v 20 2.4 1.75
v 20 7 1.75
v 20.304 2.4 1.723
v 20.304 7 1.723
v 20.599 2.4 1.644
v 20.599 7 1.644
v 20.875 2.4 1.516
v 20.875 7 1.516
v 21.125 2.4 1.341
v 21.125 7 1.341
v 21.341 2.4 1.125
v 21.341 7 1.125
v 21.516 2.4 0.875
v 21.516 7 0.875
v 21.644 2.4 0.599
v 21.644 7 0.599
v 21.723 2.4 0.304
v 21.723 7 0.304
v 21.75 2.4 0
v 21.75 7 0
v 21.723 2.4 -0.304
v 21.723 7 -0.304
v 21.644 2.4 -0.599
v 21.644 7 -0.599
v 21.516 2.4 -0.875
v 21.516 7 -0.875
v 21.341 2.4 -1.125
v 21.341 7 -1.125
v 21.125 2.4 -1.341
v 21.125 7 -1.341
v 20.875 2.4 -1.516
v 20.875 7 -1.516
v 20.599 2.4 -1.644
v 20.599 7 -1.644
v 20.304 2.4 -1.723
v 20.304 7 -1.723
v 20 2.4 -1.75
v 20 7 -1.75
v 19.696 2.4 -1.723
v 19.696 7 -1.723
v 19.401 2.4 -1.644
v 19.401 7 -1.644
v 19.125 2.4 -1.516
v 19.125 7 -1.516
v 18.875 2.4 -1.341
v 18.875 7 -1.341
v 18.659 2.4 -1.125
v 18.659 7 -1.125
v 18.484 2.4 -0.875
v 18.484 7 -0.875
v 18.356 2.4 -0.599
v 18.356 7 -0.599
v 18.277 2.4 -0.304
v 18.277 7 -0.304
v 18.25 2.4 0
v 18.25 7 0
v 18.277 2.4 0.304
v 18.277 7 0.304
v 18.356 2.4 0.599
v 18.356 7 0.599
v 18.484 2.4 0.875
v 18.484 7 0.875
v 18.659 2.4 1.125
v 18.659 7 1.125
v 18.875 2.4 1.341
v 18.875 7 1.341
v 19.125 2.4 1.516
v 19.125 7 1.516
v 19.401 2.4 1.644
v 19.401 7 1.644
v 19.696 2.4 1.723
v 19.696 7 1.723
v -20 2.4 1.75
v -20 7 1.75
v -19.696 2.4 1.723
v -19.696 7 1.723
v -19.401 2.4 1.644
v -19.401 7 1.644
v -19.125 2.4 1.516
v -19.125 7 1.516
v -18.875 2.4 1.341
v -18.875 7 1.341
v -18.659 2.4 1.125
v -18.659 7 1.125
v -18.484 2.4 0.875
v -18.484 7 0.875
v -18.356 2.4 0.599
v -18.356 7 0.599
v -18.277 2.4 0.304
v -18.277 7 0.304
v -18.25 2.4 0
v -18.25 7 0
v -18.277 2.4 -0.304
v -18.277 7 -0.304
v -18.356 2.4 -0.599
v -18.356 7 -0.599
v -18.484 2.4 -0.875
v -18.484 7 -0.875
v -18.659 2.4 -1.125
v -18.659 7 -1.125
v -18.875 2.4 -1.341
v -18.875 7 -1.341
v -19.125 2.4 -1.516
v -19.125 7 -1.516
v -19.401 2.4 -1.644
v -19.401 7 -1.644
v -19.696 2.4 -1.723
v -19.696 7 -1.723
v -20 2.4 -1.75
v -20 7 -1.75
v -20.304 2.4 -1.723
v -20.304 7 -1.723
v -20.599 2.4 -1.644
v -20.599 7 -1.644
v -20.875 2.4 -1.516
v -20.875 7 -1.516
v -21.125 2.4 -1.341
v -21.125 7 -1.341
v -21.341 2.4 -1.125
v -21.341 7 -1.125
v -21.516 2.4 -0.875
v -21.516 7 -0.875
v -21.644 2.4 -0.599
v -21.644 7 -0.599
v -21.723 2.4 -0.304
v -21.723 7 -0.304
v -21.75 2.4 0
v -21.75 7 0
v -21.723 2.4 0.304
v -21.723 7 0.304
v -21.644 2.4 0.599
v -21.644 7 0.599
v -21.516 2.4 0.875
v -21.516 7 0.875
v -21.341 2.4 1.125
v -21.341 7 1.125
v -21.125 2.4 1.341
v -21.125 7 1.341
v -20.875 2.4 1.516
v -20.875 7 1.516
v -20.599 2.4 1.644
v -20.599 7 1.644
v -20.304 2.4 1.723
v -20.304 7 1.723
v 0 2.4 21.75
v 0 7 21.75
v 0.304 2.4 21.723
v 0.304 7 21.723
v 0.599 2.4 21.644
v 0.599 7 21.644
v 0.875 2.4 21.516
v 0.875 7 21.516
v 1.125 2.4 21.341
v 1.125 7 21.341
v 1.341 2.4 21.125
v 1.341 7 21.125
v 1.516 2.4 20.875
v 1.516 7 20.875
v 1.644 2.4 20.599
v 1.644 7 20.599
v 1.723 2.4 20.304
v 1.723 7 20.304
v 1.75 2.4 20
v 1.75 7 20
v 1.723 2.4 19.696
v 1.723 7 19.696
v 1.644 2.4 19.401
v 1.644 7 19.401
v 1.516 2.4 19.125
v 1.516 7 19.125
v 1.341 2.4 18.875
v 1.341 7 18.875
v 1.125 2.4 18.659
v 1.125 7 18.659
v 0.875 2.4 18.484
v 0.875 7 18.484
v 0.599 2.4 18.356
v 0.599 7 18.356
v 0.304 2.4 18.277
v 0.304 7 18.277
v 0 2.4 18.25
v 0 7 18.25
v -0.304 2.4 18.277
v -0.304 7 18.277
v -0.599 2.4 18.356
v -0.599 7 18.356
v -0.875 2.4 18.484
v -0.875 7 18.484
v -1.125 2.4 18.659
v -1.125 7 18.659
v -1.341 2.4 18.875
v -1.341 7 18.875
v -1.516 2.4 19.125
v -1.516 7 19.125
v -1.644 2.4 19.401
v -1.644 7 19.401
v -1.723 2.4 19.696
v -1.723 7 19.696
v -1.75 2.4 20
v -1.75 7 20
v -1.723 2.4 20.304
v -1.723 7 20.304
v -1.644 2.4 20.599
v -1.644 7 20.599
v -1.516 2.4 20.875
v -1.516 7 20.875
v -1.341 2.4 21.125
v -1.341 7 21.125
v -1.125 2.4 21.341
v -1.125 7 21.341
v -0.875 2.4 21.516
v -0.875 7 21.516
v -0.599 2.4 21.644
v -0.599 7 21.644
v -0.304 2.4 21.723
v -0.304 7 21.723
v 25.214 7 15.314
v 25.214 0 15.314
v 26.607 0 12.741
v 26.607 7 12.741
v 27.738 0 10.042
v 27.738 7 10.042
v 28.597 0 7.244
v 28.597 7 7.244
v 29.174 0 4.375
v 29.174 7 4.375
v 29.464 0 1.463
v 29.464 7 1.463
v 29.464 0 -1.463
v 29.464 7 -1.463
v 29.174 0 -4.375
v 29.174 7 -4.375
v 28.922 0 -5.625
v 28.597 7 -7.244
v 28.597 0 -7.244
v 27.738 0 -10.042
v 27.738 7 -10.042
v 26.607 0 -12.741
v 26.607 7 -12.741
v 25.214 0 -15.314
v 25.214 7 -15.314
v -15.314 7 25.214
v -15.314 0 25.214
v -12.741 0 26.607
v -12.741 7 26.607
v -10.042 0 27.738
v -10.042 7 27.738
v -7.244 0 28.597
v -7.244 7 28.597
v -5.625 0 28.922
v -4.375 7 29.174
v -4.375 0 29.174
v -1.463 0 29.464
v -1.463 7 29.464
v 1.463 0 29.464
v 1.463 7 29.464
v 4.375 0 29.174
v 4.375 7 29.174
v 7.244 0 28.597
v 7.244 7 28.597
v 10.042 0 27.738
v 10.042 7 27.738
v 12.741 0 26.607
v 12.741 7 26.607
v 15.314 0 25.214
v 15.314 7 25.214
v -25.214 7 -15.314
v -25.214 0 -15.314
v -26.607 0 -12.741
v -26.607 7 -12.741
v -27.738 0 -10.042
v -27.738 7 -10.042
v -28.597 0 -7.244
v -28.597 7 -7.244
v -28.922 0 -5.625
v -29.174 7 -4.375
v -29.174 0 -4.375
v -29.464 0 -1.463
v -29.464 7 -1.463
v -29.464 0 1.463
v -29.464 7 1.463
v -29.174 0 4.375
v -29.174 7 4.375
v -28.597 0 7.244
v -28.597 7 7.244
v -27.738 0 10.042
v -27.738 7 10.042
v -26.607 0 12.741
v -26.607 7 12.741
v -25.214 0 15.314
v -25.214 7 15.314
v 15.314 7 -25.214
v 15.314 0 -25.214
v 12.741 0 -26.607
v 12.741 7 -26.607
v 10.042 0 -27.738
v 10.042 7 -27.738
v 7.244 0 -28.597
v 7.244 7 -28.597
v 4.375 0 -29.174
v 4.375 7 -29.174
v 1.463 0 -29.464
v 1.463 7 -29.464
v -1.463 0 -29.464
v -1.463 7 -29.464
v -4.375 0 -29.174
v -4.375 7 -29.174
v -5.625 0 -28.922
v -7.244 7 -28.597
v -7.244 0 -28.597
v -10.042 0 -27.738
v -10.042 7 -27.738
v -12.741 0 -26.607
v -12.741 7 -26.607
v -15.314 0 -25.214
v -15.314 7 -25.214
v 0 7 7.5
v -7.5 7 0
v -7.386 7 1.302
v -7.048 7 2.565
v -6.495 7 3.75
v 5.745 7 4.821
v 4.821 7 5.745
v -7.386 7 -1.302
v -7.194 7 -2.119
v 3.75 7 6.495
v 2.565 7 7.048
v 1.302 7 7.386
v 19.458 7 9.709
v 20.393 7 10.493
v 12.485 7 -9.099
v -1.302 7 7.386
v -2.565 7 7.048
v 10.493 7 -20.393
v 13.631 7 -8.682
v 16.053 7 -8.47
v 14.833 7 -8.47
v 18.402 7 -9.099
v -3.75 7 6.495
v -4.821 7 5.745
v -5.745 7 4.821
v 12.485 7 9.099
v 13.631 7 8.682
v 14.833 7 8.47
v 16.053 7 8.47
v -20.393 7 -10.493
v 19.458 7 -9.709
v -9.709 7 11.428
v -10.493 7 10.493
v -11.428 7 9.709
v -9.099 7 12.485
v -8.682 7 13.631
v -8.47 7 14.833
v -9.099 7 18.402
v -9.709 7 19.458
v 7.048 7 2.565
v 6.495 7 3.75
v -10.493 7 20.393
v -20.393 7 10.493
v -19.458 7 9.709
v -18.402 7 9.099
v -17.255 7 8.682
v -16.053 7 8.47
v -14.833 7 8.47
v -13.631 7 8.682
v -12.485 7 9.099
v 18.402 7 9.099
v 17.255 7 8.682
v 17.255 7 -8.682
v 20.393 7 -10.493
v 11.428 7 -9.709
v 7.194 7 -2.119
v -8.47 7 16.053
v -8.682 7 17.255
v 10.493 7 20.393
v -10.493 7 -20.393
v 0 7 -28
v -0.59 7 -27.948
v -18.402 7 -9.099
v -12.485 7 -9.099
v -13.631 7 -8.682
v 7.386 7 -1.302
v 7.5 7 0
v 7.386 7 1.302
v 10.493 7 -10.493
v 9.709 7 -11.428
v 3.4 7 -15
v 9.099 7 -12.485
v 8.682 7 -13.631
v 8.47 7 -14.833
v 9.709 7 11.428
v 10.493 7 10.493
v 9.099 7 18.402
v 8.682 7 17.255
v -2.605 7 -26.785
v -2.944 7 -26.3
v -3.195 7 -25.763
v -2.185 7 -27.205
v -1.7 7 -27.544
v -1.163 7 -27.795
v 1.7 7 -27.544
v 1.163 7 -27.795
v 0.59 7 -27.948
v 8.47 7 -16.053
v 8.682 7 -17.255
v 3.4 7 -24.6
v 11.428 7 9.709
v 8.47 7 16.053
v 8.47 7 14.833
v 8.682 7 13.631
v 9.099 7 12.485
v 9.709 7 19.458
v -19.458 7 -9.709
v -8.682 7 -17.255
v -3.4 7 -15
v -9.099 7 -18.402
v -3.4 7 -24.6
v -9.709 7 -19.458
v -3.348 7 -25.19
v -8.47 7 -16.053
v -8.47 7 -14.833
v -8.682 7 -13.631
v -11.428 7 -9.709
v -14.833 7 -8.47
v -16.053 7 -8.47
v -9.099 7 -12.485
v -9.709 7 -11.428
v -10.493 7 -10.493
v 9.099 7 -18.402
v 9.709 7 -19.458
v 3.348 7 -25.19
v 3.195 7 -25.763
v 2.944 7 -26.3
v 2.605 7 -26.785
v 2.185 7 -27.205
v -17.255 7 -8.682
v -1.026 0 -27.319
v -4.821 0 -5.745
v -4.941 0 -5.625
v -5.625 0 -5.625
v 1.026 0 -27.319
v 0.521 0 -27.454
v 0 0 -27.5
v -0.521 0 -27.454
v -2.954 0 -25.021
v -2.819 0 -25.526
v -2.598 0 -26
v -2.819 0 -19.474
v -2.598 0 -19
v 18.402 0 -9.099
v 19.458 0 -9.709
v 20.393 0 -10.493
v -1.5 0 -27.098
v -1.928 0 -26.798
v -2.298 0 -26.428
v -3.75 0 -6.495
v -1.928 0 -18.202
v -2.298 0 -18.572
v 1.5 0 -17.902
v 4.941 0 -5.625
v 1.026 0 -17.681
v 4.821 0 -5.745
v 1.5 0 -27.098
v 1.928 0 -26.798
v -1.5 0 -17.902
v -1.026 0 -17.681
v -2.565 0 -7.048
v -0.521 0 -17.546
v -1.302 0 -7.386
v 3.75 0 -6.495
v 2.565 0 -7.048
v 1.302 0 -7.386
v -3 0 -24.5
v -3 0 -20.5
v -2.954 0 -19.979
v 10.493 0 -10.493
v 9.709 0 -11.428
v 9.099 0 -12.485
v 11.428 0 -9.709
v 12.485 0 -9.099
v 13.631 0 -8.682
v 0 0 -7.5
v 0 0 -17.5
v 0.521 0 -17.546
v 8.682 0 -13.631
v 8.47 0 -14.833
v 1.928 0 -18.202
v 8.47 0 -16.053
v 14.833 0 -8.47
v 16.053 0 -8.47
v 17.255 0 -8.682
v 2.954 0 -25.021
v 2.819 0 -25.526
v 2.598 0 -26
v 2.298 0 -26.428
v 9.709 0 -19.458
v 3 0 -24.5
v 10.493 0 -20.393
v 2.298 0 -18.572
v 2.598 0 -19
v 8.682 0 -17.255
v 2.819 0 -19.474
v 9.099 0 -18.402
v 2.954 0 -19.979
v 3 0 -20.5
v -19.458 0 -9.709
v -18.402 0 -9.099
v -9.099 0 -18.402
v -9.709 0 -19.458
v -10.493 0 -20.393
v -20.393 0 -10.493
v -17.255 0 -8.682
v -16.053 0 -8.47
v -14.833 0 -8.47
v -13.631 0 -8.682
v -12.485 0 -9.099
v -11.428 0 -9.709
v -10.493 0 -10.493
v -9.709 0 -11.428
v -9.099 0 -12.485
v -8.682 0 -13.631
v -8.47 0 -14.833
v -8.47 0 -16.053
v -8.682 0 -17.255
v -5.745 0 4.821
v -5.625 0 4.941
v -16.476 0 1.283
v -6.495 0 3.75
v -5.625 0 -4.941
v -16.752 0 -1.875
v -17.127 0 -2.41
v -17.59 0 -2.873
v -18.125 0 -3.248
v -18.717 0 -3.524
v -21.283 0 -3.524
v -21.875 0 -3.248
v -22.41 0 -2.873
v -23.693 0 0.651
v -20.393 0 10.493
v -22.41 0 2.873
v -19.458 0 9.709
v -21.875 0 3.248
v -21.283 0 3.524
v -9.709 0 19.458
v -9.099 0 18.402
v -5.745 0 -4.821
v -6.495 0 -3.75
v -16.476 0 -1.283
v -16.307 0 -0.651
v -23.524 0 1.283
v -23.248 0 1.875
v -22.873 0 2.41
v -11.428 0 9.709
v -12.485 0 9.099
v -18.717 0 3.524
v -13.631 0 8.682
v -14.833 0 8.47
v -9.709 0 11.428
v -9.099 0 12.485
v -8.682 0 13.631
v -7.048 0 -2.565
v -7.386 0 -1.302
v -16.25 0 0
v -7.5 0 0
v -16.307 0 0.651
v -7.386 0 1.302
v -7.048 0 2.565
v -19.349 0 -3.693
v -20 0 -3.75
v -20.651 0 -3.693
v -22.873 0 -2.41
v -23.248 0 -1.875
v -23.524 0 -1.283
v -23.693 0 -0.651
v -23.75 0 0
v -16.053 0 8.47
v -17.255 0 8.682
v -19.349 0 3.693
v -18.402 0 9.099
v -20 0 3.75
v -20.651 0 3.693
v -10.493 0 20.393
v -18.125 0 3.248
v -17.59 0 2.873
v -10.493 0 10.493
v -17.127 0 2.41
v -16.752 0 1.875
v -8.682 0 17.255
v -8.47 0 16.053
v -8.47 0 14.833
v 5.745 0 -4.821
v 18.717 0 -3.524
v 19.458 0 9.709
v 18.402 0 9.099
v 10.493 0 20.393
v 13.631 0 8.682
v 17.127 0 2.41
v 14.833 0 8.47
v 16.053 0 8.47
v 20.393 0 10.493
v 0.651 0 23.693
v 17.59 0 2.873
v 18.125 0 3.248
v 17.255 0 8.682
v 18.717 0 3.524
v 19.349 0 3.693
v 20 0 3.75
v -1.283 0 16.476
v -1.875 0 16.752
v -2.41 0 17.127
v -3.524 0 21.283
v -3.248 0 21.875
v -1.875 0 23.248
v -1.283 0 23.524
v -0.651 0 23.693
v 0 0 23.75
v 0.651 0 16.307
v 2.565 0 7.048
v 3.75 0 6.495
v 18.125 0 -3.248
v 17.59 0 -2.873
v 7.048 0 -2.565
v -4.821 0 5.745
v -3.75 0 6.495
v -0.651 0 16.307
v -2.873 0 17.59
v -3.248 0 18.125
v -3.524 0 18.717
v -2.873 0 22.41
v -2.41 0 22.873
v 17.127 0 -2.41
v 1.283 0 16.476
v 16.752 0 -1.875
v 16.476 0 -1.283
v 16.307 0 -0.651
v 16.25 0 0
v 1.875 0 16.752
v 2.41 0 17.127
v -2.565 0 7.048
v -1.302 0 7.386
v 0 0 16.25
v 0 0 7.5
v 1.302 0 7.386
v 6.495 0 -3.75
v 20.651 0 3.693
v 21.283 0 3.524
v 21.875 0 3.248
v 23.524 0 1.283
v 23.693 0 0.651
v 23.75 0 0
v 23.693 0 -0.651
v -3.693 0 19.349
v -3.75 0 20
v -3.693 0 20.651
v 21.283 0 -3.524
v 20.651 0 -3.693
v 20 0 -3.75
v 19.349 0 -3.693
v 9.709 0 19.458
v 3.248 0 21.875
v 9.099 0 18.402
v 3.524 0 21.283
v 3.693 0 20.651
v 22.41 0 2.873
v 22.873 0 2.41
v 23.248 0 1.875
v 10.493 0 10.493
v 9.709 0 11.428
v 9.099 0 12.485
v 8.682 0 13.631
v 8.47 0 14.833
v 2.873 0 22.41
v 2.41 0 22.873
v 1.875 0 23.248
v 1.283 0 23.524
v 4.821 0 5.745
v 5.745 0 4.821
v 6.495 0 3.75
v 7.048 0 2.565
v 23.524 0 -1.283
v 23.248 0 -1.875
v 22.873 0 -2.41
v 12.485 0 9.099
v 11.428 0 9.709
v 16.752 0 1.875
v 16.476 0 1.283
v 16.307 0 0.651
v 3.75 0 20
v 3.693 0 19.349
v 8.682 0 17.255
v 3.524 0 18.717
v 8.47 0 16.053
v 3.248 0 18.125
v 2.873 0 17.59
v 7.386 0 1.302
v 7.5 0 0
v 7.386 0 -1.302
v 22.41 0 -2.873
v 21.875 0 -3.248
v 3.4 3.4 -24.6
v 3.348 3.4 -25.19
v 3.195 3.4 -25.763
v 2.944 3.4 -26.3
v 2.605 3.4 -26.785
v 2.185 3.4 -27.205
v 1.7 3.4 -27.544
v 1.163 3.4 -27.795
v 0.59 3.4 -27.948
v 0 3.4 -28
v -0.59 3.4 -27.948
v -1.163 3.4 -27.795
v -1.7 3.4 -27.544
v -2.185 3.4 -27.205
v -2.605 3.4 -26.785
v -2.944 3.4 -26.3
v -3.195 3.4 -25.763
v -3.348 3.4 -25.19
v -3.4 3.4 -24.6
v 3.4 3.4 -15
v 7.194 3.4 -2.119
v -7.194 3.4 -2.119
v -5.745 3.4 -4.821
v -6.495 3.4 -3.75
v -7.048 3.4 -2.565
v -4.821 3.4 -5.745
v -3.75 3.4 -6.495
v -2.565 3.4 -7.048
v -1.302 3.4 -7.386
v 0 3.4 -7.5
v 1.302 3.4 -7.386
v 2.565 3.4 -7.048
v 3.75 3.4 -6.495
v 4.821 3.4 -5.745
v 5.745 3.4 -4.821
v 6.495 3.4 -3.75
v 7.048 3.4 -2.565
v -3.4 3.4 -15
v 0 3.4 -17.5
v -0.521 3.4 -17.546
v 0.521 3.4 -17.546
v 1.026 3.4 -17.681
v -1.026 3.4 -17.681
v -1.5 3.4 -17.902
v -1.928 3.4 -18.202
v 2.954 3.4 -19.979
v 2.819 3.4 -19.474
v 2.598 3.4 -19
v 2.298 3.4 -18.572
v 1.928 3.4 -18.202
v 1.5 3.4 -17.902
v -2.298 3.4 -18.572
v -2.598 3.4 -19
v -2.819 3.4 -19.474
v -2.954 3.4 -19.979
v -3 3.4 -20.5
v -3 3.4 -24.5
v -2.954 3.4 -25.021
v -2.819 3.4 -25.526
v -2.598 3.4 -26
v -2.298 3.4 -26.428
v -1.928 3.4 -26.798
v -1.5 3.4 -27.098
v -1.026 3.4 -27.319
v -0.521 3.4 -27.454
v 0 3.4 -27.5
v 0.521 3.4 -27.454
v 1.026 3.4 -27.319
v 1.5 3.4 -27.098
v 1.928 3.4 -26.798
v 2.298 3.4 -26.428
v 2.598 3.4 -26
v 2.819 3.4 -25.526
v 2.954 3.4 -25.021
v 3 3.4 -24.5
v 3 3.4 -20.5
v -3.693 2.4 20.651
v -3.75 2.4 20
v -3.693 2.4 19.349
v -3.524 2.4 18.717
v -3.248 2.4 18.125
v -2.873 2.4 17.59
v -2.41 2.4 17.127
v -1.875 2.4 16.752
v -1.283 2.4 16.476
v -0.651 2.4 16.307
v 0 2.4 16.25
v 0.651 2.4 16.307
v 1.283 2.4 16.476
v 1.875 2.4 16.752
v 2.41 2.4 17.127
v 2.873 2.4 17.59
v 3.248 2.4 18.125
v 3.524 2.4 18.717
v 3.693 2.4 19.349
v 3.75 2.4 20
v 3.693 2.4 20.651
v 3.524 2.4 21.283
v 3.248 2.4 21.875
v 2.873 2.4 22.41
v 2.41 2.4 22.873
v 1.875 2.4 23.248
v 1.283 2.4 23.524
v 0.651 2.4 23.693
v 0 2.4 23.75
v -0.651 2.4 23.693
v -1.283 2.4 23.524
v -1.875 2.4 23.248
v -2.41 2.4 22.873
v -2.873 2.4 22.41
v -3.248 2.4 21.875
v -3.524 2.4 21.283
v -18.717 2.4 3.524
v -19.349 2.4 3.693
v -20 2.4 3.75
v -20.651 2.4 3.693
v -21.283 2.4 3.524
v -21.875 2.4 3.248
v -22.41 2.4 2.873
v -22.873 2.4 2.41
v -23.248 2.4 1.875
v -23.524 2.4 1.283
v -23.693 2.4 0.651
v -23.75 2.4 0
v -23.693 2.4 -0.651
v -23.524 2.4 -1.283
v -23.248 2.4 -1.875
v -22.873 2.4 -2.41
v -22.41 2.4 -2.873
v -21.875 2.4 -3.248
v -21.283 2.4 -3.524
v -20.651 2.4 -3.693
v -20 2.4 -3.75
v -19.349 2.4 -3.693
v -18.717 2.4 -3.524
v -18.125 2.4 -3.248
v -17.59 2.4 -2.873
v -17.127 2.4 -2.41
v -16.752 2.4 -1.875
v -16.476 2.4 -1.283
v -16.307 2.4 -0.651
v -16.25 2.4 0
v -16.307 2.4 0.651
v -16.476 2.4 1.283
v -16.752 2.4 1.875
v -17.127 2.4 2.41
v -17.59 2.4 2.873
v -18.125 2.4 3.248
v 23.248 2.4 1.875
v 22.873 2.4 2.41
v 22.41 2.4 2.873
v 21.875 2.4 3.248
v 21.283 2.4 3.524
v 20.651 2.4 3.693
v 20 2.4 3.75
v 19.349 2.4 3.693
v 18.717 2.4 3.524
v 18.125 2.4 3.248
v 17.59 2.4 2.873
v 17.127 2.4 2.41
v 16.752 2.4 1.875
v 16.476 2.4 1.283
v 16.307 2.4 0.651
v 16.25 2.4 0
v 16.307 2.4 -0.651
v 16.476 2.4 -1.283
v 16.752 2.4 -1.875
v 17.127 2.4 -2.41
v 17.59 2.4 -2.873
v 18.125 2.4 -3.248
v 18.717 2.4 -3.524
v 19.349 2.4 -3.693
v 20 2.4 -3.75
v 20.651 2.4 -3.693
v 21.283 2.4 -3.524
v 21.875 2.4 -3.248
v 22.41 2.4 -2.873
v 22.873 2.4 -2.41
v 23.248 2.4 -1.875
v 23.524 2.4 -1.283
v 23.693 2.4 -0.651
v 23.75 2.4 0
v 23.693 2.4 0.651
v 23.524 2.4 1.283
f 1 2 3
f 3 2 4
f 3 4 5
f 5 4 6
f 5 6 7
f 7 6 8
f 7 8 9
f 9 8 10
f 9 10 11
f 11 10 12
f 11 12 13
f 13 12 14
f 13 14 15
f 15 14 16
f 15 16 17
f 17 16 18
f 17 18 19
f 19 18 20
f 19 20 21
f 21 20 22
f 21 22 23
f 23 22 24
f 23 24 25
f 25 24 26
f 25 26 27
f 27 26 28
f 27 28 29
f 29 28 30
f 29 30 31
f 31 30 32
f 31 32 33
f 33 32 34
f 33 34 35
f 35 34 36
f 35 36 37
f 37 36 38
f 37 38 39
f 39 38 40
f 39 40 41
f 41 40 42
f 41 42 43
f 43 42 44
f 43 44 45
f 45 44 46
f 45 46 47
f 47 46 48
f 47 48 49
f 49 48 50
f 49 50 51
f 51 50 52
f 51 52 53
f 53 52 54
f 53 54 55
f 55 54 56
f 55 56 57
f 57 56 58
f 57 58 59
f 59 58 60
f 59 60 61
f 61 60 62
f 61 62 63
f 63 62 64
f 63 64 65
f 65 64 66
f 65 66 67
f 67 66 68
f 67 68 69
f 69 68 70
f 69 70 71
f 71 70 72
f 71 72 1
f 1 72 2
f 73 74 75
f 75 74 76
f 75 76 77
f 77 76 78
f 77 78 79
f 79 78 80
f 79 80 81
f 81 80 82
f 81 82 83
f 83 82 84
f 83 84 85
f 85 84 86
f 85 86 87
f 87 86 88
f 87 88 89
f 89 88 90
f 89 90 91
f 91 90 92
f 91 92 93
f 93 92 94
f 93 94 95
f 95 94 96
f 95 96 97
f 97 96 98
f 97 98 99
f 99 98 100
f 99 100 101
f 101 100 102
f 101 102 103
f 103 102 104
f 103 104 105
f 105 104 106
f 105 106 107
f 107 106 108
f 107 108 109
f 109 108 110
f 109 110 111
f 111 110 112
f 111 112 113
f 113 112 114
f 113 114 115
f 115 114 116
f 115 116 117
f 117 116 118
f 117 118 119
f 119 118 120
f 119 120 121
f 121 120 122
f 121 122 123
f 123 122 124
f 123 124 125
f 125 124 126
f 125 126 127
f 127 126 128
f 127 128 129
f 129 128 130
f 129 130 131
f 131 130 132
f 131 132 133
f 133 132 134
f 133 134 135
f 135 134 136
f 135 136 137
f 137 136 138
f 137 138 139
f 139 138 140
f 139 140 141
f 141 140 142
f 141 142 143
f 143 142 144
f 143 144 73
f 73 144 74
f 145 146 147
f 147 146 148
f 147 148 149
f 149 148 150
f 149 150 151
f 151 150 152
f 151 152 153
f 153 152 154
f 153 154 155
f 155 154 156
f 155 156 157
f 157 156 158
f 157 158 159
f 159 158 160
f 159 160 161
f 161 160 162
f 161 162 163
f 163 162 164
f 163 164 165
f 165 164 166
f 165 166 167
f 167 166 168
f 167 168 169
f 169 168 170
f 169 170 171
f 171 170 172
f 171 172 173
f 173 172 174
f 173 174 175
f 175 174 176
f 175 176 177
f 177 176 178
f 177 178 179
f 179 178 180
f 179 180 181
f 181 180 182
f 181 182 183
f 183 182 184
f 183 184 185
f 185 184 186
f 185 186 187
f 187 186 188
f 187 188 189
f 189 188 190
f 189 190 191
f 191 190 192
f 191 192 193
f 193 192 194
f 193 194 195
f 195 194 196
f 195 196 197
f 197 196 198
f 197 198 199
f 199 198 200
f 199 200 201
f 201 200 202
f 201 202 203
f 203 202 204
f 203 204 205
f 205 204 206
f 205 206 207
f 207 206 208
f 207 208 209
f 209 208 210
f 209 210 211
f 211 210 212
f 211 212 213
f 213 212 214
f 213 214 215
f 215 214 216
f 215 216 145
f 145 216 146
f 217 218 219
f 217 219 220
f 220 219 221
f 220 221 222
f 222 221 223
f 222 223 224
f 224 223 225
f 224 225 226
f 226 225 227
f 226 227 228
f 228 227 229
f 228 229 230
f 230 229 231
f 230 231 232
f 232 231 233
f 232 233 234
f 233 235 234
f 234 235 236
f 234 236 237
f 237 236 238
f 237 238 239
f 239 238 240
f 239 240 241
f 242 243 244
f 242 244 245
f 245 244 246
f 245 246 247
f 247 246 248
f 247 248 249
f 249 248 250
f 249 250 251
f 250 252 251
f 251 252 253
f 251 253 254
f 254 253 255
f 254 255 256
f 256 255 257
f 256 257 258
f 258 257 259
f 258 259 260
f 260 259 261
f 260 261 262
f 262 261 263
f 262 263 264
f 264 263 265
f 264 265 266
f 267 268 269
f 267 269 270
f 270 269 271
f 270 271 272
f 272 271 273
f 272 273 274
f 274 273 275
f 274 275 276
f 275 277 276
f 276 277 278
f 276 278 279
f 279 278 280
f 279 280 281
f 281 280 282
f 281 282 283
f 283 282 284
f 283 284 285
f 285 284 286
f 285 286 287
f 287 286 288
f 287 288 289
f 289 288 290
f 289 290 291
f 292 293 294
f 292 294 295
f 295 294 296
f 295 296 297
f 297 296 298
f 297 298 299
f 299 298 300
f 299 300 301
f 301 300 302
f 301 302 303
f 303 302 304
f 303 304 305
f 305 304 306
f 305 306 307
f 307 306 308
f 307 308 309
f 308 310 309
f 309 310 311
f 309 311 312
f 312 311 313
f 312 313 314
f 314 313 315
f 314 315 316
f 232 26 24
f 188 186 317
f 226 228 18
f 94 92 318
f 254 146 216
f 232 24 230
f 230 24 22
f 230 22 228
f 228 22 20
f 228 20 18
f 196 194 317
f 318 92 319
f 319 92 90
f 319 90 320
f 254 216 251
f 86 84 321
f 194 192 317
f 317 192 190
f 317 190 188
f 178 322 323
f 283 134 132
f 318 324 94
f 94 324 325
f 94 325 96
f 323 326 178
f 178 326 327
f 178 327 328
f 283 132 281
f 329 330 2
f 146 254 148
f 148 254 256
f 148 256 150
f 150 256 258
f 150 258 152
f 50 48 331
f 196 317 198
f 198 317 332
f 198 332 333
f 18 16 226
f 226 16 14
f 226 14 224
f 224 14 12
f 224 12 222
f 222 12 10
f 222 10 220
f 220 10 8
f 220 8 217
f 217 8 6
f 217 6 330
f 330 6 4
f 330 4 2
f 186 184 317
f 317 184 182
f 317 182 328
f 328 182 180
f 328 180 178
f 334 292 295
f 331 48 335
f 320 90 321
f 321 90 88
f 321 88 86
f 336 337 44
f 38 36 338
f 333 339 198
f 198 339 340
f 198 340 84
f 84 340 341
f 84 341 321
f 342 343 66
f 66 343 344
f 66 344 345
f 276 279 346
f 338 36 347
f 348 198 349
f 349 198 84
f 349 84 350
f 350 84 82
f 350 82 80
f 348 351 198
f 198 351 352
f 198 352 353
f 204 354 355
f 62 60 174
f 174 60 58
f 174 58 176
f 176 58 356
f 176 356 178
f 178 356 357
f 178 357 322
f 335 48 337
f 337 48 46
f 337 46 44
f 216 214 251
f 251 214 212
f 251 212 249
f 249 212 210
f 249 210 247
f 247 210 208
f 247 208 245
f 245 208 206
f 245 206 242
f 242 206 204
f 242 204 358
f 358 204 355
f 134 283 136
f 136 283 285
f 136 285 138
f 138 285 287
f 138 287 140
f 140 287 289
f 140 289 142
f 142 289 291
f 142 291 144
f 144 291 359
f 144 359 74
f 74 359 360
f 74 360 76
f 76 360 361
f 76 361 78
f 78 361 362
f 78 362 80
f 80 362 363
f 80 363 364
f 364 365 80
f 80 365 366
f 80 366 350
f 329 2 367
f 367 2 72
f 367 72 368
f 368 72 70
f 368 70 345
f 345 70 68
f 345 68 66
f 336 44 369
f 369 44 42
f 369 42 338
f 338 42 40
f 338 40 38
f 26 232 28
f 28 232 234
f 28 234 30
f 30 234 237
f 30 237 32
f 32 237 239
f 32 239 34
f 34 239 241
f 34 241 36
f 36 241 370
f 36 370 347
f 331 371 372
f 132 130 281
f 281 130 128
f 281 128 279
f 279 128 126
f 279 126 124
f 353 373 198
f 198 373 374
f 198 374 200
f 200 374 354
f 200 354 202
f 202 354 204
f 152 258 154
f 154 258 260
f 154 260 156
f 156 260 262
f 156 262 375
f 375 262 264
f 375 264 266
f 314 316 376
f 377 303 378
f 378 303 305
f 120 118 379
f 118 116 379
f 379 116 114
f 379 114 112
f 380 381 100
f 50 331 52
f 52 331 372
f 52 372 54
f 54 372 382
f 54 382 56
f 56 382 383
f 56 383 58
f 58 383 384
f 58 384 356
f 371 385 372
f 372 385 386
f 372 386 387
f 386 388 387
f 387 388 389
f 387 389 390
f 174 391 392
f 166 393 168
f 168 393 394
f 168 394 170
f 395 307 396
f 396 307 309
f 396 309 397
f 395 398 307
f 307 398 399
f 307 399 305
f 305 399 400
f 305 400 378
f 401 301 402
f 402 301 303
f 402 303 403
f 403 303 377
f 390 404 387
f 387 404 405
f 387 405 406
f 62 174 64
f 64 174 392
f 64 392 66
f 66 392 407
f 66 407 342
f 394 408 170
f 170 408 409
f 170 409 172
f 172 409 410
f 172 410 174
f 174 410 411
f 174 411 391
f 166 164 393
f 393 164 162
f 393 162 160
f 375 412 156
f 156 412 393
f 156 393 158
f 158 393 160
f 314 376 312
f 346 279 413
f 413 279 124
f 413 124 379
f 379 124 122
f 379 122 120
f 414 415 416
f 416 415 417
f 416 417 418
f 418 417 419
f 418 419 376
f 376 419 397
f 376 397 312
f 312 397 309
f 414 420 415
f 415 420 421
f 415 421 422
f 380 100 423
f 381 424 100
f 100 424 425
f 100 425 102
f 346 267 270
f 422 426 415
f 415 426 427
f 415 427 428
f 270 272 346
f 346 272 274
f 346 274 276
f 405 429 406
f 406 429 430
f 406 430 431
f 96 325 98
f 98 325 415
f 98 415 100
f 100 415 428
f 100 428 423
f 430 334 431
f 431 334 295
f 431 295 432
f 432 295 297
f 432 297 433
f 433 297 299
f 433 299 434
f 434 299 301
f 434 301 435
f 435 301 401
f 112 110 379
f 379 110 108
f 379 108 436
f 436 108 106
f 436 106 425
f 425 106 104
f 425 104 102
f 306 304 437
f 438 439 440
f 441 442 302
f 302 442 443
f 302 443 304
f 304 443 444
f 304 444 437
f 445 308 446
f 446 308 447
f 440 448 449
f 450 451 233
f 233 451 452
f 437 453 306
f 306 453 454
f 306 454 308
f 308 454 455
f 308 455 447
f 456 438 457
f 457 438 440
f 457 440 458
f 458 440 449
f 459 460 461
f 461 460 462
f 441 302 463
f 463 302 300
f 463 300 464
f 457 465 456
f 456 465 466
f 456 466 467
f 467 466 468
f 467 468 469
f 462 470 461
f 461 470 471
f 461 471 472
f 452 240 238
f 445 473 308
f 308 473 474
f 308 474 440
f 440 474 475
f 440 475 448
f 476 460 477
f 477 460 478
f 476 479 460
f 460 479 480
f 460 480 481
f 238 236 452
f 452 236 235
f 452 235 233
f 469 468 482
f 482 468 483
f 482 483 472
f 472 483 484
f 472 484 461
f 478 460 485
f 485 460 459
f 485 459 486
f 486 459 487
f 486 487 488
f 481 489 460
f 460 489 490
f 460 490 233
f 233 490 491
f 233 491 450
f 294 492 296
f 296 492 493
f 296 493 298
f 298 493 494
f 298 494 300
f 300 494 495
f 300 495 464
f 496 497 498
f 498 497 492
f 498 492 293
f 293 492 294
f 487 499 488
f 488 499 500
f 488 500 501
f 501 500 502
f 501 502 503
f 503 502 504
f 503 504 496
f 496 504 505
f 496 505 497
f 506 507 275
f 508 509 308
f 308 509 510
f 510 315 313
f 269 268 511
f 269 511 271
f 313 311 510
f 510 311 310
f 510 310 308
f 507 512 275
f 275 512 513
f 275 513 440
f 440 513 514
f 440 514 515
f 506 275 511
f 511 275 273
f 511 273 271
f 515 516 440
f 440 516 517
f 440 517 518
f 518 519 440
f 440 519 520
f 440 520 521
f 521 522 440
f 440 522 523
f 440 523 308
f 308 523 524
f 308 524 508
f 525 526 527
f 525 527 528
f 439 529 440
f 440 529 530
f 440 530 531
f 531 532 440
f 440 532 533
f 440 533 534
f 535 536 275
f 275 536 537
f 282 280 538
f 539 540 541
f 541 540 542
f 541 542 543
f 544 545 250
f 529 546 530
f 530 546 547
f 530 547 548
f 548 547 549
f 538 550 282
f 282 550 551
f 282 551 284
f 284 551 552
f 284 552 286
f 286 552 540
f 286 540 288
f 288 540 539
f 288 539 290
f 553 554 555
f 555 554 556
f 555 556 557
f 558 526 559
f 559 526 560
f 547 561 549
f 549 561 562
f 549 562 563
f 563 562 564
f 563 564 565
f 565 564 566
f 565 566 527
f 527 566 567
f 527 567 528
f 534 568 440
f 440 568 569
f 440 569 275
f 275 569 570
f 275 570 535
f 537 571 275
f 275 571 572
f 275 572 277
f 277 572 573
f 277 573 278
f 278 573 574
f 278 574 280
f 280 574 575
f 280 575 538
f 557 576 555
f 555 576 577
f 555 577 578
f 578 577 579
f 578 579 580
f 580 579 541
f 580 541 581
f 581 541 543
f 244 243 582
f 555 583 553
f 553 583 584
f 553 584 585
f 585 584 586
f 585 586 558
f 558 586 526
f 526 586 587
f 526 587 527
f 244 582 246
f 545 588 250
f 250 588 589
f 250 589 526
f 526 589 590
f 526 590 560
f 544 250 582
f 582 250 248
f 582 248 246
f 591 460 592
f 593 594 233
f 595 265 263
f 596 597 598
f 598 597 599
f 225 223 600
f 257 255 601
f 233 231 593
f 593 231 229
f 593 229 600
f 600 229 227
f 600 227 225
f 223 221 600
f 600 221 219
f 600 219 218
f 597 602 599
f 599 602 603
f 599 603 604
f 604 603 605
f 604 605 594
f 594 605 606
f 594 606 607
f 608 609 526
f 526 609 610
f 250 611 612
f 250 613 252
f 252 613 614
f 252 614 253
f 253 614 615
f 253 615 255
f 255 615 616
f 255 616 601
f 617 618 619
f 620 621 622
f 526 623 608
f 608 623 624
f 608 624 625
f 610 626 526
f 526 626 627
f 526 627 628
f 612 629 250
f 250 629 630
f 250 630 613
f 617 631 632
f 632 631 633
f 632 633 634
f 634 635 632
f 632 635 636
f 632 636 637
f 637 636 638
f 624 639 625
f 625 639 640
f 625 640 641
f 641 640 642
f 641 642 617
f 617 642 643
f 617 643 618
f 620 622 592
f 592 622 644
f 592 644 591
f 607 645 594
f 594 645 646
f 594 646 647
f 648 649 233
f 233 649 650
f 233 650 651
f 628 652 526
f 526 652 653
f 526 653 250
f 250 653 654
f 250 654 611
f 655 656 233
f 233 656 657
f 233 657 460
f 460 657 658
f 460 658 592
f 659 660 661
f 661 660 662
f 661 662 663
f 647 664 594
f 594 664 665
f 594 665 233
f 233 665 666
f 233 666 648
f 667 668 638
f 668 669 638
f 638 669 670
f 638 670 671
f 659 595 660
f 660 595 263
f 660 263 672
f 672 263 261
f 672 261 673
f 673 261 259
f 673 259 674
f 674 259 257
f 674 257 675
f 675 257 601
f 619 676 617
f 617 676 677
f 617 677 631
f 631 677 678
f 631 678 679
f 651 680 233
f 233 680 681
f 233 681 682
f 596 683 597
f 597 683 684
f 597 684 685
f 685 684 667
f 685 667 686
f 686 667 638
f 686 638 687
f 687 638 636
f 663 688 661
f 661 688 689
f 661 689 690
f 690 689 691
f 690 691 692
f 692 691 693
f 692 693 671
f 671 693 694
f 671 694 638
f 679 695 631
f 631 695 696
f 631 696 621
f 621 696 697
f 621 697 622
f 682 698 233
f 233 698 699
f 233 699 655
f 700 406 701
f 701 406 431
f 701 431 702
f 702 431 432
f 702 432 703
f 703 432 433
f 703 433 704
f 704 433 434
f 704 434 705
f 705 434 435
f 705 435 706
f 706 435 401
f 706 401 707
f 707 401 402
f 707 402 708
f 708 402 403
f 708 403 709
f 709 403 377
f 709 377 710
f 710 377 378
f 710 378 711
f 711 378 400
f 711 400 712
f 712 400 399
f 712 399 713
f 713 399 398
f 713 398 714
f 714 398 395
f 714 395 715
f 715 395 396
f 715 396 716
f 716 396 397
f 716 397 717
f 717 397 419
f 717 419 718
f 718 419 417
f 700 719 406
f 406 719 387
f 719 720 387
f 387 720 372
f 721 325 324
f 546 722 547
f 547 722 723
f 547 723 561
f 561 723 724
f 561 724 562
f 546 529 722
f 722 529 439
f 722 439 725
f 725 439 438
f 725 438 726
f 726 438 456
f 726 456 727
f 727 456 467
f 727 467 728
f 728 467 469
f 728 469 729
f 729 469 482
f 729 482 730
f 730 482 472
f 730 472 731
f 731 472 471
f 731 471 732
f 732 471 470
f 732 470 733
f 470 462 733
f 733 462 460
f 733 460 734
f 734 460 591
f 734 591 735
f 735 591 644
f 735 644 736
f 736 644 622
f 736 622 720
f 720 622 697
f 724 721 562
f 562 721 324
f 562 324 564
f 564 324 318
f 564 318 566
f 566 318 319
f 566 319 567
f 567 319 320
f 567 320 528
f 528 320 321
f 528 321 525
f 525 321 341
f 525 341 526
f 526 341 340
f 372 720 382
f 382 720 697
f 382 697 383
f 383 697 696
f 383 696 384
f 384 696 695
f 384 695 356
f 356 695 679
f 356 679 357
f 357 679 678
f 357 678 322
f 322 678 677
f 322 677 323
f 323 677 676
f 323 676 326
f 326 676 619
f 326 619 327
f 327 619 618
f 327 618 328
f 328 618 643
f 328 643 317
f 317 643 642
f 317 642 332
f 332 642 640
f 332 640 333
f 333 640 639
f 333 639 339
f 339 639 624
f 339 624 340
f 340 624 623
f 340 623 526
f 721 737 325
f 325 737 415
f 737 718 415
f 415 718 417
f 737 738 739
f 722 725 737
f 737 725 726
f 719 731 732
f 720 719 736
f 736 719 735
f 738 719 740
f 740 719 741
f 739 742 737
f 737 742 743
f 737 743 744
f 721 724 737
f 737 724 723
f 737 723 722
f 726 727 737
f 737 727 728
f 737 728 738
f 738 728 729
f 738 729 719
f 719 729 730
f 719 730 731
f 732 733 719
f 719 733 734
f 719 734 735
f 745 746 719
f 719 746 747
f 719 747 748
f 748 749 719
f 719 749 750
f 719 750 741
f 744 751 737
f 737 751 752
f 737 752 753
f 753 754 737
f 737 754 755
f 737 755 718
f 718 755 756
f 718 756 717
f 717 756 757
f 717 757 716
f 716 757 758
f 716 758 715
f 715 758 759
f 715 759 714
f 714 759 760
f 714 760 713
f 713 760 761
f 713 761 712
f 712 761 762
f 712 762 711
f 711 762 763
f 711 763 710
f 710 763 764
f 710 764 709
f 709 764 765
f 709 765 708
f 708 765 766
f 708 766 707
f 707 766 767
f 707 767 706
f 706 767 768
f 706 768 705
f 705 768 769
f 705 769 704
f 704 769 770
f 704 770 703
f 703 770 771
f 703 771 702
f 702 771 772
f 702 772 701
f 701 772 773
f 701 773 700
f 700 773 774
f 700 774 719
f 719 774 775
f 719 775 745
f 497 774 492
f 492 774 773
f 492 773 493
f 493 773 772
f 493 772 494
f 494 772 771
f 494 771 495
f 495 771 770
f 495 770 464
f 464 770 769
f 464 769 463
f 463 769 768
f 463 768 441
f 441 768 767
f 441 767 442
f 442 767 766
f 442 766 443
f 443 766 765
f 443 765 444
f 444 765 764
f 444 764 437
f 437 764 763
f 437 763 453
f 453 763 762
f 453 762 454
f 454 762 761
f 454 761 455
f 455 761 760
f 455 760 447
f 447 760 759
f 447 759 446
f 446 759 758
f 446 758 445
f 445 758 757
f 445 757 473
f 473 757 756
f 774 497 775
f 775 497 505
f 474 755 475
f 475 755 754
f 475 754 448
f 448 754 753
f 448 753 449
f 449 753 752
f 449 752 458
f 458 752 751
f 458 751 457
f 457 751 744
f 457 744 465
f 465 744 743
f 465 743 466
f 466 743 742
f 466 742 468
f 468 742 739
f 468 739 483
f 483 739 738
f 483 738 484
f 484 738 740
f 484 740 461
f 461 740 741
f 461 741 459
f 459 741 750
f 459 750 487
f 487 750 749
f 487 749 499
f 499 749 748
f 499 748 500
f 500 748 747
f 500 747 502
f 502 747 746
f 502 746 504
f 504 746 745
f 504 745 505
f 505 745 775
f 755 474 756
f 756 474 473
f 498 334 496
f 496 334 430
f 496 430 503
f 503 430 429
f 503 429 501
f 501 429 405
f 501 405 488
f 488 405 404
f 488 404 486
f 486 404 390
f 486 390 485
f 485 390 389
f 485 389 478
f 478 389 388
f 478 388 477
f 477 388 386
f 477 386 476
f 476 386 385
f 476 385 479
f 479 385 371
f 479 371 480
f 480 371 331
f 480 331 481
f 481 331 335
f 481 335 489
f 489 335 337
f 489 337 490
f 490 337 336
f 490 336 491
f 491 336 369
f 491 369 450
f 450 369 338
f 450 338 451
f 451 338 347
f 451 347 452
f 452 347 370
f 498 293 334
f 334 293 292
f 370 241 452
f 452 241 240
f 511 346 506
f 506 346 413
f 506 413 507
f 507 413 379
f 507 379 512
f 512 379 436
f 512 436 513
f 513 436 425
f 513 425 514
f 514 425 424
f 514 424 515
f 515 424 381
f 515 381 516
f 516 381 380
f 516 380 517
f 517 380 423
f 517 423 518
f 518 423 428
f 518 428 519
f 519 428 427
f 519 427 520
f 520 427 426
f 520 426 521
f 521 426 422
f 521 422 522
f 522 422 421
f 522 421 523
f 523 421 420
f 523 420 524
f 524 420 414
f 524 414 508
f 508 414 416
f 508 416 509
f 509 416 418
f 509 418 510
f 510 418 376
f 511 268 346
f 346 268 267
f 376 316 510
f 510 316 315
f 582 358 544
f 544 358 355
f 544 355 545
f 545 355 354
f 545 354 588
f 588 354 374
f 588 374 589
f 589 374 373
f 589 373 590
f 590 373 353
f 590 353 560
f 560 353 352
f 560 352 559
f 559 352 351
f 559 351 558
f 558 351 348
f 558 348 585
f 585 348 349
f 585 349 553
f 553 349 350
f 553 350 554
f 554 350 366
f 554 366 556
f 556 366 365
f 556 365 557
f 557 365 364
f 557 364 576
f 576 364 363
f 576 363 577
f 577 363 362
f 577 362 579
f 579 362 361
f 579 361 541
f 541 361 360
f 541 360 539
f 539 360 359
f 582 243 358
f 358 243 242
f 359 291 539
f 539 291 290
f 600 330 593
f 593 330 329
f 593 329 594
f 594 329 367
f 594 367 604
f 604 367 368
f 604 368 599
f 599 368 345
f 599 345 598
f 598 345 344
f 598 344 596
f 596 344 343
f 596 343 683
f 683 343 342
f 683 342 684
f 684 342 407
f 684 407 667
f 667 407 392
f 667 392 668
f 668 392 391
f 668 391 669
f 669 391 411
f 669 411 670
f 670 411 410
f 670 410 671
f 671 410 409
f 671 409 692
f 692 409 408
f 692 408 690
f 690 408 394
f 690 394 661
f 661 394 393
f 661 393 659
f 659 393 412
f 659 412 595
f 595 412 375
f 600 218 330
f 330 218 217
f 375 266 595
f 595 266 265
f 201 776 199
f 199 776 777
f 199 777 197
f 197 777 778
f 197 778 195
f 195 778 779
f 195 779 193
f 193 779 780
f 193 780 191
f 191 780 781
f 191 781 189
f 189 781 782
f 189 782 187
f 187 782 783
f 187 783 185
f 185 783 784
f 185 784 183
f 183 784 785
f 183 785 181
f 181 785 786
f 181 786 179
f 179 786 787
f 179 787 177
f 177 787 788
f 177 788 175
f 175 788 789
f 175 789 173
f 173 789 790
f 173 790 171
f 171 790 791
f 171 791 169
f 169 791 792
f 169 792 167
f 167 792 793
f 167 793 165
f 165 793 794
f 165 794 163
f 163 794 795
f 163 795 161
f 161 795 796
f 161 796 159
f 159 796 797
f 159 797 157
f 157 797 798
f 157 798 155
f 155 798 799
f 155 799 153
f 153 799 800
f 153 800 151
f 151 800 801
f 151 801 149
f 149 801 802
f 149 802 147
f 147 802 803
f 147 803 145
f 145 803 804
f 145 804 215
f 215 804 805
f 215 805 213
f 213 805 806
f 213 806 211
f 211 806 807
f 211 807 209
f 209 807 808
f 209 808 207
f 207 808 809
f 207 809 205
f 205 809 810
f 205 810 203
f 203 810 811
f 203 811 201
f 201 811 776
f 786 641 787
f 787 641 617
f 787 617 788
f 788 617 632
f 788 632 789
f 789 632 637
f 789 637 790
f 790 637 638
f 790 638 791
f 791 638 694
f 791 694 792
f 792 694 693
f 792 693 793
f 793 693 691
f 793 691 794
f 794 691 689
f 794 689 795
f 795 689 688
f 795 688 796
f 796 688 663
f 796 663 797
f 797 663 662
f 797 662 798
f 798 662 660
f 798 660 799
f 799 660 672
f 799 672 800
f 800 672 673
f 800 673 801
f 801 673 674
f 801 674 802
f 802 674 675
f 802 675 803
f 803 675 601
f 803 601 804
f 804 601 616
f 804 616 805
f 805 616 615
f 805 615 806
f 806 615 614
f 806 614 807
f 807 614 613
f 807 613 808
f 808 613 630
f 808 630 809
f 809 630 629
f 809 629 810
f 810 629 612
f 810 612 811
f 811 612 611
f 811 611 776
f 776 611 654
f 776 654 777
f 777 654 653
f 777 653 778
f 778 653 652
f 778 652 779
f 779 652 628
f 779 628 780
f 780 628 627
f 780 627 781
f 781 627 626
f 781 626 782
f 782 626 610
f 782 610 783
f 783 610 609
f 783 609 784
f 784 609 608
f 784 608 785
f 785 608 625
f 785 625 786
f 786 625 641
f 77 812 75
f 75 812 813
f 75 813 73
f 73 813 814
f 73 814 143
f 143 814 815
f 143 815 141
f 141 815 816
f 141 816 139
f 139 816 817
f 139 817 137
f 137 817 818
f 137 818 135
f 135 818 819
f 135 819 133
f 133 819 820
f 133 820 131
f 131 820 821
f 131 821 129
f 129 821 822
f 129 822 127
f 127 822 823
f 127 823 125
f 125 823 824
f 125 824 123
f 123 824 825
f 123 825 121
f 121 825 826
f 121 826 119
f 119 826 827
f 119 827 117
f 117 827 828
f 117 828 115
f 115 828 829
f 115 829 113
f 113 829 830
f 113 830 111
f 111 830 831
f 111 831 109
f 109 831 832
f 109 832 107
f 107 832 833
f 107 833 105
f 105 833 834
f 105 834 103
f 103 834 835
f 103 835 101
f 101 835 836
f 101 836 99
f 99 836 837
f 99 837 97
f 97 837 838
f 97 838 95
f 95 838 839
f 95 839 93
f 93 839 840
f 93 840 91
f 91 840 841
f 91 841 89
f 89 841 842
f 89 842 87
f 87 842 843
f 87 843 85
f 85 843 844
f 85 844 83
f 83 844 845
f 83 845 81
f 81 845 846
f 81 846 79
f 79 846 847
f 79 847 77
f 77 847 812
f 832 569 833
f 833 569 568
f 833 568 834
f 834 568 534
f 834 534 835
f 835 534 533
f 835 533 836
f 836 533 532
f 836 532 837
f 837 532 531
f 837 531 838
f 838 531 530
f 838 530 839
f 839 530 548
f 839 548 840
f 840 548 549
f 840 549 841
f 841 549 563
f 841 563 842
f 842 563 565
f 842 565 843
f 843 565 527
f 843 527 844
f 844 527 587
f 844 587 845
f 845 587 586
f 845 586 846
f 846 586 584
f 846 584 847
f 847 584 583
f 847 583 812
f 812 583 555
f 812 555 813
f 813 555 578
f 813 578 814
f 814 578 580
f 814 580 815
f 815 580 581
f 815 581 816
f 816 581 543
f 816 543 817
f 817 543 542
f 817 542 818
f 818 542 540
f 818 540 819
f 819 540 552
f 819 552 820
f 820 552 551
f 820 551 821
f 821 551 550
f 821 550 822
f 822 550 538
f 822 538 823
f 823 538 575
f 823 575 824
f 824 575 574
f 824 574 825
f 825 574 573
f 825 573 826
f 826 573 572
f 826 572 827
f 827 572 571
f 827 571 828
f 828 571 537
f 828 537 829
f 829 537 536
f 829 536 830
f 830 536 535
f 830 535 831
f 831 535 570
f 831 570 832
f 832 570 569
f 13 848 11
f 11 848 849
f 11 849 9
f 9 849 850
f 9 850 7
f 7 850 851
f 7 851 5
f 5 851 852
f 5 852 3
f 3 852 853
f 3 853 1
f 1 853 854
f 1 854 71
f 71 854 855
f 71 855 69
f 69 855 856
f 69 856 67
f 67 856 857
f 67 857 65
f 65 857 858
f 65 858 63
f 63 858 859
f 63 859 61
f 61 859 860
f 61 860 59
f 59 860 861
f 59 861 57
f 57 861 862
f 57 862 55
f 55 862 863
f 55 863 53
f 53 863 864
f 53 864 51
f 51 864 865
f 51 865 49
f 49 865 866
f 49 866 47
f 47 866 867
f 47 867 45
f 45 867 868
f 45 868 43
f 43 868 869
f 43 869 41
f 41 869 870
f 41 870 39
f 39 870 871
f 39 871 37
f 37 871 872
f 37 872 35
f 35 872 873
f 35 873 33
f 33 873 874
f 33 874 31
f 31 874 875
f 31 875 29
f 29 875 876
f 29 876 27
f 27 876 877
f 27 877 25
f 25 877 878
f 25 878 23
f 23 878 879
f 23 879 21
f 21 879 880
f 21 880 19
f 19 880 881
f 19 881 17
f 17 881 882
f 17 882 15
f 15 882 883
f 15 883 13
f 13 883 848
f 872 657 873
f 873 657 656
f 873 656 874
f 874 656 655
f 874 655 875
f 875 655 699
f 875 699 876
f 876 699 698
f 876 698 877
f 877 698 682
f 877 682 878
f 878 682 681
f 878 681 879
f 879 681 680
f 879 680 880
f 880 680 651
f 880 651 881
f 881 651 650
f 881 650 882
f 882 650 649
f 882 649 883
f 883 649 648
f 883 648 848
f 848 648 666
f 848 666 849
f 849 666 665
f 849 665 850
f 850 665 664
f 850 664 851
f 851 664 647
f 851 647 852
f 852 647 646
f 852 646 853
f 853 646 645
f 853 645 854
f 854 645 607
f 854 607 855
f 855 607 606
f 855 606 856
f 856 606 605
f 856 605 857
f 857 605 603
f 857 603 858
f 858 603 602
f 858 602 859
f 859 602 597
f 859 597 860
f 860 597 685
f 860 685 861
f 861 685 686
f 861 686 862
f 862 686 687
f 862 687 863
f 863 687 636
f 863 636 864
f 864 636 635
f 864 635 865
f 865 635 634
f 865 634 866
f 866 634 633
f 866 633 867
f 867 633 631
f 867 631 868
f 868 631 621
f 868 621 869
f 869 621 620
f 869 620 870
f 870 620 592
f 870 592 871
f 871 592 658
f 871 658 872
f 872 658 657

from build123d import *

# Parameters (mm, degrees)
SKETCH3_R           = 29.5
BOSS_EXTRUDE4_DEPTH = 7
CUT_EXTRUDE1_DEPTH  = 3.6
SKETCH5_R           = 7.5
CUT_EXTRUDE2_DEPTH  = 11.8
CUT_EXTRUDE3_DEPTH  = 15.8
SKETCH7_R           = 1.75
CUT_EXTRUDE4_DEPTH  = 20
SKETCH8_R           = 3.75
CUT_EXTRUDE5_DEPTH  = 2.4


with BuildPart() as part:
    # Sketch3 → Boss-Extrude4 (new body)
    with BuildSketch(Plane(origin=(0, 0, 0), x_dir=(1, 0, 0), z_dir=(0, 1, 0))):
        Circle(SKETCH3_R)
    extrude(amount=BOSS_EXTRUDE4_DEPTH)

    # Sketch4 → Cut-Extrude1 (cut)
    with BuildSketch(Plane(origin=(0, 7, 0), x_dir=(1, 0, 0), z_dir=(0, 1, 0))):
        with BuildLine():
            Line((-3.4, 24.6), (-3.4, 15))
            Line((-3.4, 15), (-7.194348327, 2.119281046))
            ThreePointArc((-7.194348327, 2.119281046), (0, -7.5), (7.194348327, 2.119281046))
            Line((7.194348327, 2.119281046), (3.4, 15))
            Line((3.4, 15), (3.4, 24.6))
            ThreePointArc((3.4, 24.6), (0, 28), (-3.4, 24.6))
        make_face()
    extrude(amount=-CUT_EXTRUDE1_DEPTH, mode=Mode.SUBTRACT)

    # Sketch5 → Cut-Extrude2 (cut)
    with BuildSketch(Plane(origin=(0, 7, 0), x_dir=(1, 0, 0), z_dir=(0, 1, 0))):
        Circle(SKETCH5_R)
        with BuildLine():
            Line((3, 24.5), (3, 20.5))
            ThreePointArc((3, 20.5), (0, 17.5), (-3, 20.5))
            Line((-3, 20.5), (-3, 24.5))
            ThreePointArc((-3, 24.5), (0, 27.5), (3, 24.5))
        make_face()
    extrude(amount=-CUT_EXTRUDE2_DEPTH, mode=Mode.SUBTRACT)

    # Sketch6 → Cut-Extrude3 (cut)
    with BuildSketch(Plane(origin=(0, 7, 0), x_dir=(1, 0, 0), z_dir=(0, 1, 0))):
        with BuildLine():
            Line((20.392959569, 10.493464633), (32.610697072, 22.711202135))
            Line((32.610697072, 22.711202135), (22.711202135, 32.610697072))
            Line((22.711202135, 32.610697072), (10.493464633, 20.392959569))
            ThreePointArc((10.493464633, 20.392959569), (10.493464633, 10.493464633), (20.392959569, 10.493464633))
        make_face()
        with BuildLine():
            Line((10.493464633, -20.392959569), (22.711202135, -32.610697072))
            Line((22.711202135, -32.610697072), (32.610697072, -22.711202135))
            Line((32.610697072, -22.711202135), (20.392959569, -10.493464633))
            ThreePointArc((20.392959569, -10.493464633), (10.493464633, -10.493464633), (10.493464633, -20.392959569))
        make_face()
        with BuildLine():
            Line((-20.392959569, -10.493464633), (-32.610697072, -22.711202135))
            Line((-32.610697072, -22.711202135), (-22.711202135, -32.610697072))
            Line((-22.711202135, -32.610697072), (-10.493464633, -20.392959569))
            ThreePointArc((-10.493464633, -20.392959569), (-10.493464633, -10.493464633), (-20.392959569, -10.493464633))
        make_face()
        with BuildLine():
            Line((-10.493464633, 20.392959569), (-22.711202135, 32.610697072))
            Line((-22.711202135, 32.610697072), (-32.610697072, 22.711202135))
            Line((-32.610697072, 22.711202135), (-20.392959569, 10.493464633))
            ThreePointArc((-20.392959569, 10.493464633), (-10.493464633, 10.493464633), (-10.493464633, 20.392959569))
        make_face()
    extrude(amount=-CUT_EXTRUDE3_DEPTH, mode=Mode.SUBTRACT)

    # Sketch7 → Cut-Extrude4 (cut)
    with BuildSketch(Plane(origin=(116.330739936, 17, -202.28312586), x_dir=(0.707106781, 0, 0.707106781), z_dir=(0, 1, 0))):
        with Locations((74.91965057, -211.151889461)):
            Circle(SKETCH7_R)
        with Locations((74.91965057, -239.436160708)):
            Circle(SKETCH7_R)
        with Locations((46.635379323, -239.436160708)):
            Circle(SKETCH7_R)
    extrude(amount=-CUT_EXTRUDE4_DEPTH, mode=Mode.SUBTRACT)

    # Sketch8 → Cut-Extrude5 (cut)
    with BuildSketch(Plane.XZ):
        with Locations((0, 20)):
            Circle(SKETCH8_R)
        with Locations((20, 0)):
            Circle(SKETCH8_R)
        with Locations((-20, 0)):
            Circle(SKETCH8_R)
    extrude(amount=-CUT_EXTRUDE5_DEPTH, mode=Mode.SUBTRACT)


solid = part.part
